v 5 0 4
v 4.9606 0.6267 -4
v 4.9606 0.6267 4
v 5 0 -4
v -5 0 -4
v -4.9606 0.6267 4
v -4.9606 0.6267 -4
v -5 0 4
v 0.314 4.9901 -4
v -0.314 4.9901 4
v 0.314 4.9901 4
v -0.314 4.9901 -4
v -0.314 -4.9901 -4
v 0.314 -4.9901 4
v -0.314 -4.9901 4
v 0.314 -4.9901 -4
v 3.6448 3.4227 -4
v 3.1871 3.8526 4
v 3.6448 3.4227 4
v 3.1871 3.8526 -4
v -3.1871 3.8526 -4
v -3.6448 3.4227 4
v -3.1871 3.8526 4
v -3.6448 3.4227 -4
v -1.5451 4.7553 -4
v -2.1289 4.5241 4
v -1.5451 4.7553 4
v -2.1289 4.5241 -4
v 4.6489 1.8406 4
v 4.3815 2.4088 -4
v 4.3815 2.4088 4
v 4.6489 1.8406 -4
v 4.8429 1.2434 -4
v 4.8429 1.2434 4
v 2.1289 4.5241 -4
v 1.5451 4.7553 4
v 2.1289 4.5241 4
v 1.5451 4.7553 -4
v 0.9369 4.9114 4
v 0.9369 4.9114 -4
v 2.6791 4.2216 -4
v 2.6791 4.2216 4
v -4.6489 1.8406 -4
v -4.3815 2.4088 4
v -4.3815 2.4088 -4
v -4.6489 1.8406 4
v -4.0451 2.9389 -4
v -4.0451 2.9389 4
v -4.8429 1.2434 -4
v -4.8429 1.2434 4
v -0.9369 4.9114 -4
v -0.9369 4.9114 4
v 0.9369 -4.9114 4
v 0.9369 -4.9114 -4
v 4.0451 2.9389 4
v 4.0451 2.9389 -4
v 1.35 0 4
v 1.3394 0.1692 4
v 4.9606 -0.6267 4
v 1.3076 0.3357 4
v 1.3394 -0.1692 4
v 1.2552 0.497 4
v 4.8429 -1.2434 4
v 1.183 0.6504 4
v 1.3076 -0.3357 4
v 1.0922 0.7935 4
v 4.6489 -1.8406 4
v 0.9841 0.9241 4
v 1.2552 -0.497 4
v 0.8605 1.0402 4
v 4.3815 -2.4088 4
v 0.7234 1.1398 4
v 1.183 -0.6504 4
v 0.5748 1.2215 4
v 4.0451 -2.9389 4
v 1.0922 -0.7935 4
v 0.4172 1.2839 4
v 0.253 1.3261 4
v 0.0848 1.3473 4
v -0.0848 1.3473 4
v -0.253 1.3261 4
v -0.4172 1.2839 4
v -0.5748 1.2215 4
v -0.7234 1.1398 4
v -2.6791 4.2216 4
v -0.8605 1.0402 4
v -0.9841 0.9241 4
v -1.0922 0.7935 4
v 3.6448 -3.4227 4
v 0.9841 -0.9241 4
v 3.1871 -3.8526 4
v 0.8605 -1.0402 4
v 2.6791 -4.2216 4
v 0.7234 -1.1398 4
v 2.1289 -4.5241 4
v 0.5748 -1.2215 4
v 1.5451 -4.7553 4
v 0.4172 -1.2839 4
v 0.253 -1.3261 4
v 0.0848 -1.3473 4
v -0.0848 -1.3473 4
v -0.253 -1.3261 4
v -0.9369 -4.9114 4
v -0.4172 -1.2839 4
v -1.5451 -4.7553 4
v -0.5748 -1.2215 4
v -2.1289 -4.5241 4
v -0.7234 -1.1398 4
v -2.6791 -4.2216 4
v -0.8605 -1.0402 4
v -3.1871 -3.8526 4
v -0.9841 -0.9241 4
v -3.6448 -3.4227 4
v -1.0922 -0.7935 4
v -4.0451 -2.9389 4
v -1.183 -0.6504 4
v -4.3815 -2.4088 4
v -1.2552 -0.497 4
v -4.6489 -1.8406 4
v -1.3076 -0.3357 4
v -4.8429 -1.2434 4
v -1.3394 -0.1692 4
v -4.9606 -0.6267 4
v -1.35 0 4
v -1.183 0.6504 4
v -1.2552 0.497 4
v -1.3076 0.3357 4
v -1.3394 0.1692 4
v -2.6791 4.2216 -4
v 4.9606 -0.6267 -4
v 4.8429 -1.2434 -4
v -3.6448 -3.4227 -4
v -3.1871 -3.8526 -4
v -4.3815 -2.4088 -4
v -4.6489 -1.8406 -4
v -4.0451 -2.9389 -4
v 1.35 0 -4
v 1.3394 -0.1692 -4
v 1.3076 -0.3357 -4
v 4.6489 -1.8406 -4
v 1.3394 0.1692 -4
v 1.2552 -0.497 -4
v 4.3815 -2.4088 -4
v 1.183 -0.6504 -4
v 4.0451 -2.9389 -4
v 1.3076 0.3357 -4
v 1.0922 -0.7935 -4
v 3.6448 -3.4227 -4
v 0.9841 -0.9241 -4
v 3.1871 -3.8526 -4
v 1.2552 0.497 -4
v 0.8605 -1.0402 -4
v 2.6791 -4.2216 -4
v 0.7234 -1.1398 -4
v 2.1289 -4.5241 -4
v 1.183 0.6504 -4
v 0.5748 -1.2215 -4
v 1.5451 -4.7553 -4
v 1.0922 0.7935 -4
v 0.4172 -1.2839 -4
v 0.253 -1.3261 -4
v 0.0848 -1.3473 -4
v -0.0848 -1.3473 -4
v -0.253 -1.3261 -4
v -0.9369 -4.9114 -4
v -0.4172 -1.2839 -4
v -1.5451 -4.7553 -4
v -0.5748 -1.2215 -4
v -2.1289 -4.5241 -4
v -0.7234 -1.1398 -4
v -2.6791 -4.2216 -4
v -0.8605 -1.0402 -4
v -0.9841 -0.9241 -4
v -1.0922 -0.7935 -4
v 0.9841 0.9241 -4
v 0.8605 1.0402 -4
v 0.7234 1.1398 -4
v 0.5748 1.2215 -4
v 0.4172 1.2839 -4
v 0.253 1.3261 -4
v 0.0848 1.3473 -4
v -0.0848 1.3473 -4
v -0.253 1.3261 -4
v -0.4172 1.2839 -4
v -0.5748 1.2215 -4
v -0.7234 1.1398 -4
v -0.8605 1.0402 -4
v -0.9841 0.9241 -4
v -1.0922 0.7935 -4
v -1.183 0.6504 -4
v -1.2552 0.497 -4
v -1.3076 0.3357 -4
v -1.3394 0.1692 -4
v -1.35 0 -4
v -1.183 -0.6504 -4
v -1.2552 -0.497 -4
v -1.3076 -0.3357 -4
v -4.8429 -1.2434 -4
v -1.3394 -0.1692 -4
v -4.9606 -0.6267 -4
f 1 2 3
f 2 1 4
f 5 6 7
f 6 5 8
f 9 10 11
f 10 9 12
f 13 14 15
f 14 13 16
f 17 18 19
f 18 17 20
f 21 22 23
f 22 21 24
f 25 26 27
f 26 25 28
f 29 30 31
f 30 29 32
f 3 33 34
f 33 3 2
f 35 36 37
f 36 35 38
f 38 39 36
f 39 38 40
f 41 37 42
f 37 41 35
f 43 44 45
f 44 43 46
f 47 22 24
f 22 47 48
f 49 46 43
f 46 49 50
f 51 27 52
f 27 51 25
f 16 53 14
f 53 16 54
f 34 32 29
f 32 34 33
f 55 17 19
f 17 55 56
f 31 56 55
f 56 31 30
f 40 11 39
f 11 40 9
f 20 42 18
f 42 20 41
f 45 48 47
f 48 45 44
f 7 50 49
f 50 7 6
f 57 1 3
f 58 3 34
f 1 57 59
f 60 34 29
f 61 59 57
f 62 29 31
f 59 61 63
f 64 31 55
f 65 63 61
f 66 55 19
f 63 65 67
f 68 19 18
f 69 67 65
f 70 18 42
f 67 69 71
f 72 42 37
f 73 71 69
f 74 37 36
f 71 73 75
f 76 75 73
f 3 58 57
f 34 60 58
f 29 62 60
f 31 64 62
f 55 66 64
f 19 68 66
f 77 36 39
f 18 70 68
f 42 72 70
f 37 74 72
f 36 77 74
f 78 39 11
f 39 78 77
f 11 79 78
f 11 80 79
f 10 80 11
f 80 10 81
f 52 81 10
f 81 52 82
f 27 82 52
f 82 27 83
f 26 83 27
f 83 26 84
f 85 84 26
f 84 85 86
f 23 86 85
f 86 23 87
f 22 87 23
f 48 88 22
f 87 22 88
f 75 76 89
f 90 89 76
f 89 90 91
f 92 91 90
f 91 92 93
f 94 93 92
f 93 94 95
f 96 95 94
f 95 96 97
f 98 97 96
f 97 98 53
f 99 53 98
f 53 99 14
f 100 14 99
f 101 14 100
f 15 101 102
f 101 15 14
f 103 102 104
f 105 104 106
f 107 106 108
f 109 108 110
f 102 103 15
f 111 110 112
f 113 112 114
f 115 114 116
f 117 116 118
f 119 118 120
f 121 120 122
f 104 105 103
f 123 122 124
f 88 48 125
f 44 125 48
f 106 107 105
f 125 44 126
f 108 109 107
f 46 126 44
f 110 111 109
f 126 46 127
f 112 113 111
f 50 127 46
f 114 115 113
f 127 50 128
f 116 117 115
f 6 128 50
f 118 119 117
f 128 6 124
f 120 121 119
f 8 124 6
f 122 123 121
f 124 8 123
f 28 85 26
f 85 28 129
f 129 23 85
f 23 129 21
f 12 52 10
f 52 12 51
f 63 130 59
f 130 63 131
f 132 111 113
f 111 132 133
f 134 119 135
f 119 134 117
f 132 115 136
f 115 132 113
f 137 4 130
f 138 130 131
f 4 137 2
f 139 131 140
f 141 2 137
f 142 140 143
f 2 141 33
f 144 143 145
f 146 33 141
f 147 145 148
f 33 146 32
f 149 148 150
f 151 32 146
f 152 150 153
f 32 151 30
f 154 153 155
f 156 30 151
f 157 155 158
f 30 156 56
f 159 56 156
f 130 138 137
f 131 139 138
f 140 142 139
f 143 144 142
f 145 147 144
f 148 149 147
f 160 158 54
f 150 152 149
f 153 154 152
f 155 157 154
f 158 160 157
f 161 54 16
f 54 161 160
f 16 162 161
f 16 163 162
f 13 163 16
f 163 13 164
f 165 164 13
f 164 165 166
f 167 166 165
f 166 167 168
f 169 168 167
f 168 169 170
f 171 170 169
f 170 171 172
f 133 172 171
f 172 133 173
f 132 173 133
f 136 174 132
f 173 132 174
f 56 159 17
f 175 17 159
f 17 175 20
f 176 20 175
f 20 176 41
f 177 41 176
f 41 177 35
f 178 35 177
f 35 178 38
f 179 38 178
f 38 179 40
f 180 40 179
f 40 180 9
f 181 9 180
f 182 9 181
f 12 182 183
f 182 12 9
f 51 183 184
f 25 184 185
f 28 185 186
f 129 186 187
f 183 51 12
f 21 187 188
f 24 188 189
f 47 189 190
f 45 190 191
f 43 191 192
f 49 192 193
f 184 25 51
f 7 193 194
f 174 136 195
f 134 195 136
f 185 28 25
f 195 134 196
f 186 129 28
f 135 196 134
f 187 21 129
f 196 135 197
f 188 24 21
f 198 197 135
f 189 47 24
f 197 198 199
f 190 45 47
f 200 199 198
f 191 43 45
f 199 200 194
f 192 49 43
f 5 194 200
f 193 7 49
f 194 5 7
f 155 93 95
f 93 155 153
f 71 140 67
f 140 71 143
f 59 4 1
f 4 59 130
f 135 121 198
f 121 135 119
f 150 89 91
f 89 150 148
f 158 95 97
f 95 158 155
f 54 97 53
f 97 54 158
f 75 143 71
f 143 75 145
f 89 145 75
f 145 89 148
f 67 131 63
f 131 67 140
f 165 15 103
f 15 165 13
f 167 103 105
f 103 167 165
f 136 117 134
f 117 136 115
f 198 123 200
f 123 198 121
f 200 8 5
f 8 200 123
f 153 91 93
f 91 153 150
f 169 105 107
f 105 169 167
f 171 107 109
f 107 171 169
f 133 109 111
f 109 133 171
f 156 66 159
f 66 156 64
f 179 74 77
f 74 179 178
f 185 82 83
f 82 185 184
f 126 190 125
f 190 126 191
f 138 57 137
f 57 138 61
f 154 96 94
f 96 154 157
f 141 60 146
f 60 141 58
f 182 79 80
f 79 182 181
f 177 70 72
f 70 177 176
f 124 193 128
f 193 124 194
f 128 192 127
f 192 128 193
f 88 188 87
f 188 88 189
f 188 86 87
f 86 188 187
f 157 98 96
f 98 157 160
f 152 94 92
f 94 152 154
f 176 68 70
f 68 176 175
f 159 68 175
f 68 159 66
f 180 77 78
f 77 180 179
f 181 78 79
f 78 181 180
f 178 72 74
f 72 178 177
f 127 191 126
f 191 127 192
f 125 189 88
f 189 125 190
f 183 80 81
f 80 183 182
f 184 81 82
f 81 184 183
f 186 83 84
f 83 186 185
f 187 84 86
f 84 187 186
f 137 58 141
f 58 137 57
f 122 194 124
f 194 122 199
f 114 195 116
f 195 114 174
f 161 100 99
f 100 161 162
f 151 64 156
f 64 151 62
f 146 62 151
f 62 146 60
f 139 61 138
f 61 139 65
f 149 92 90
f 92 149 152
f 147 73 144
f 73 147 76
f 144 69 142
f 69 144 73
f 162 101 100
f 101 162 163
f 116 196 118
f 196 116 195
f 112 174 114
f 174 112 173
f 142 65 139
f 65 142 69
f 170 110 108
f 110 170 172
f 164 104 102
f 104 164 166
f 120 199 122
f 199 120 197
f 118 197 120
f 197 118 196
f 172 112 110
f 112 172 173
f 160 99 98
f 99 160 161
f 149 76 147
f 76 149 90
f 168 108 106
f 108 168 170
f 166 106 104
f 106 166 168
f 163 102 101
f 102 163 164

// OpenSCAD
$fn = 50;


difference() {
	union() {
		translate(v = [0, 0, -4.0000000000]) {
			cylinder(h = 8, r = 5.0000000000);
		}
	}
	union() {
		translate(v = [0, 0, -100.0000000000]) {
			cylinder(h = 200, r = 1.3500000000);
		}
	}
}
